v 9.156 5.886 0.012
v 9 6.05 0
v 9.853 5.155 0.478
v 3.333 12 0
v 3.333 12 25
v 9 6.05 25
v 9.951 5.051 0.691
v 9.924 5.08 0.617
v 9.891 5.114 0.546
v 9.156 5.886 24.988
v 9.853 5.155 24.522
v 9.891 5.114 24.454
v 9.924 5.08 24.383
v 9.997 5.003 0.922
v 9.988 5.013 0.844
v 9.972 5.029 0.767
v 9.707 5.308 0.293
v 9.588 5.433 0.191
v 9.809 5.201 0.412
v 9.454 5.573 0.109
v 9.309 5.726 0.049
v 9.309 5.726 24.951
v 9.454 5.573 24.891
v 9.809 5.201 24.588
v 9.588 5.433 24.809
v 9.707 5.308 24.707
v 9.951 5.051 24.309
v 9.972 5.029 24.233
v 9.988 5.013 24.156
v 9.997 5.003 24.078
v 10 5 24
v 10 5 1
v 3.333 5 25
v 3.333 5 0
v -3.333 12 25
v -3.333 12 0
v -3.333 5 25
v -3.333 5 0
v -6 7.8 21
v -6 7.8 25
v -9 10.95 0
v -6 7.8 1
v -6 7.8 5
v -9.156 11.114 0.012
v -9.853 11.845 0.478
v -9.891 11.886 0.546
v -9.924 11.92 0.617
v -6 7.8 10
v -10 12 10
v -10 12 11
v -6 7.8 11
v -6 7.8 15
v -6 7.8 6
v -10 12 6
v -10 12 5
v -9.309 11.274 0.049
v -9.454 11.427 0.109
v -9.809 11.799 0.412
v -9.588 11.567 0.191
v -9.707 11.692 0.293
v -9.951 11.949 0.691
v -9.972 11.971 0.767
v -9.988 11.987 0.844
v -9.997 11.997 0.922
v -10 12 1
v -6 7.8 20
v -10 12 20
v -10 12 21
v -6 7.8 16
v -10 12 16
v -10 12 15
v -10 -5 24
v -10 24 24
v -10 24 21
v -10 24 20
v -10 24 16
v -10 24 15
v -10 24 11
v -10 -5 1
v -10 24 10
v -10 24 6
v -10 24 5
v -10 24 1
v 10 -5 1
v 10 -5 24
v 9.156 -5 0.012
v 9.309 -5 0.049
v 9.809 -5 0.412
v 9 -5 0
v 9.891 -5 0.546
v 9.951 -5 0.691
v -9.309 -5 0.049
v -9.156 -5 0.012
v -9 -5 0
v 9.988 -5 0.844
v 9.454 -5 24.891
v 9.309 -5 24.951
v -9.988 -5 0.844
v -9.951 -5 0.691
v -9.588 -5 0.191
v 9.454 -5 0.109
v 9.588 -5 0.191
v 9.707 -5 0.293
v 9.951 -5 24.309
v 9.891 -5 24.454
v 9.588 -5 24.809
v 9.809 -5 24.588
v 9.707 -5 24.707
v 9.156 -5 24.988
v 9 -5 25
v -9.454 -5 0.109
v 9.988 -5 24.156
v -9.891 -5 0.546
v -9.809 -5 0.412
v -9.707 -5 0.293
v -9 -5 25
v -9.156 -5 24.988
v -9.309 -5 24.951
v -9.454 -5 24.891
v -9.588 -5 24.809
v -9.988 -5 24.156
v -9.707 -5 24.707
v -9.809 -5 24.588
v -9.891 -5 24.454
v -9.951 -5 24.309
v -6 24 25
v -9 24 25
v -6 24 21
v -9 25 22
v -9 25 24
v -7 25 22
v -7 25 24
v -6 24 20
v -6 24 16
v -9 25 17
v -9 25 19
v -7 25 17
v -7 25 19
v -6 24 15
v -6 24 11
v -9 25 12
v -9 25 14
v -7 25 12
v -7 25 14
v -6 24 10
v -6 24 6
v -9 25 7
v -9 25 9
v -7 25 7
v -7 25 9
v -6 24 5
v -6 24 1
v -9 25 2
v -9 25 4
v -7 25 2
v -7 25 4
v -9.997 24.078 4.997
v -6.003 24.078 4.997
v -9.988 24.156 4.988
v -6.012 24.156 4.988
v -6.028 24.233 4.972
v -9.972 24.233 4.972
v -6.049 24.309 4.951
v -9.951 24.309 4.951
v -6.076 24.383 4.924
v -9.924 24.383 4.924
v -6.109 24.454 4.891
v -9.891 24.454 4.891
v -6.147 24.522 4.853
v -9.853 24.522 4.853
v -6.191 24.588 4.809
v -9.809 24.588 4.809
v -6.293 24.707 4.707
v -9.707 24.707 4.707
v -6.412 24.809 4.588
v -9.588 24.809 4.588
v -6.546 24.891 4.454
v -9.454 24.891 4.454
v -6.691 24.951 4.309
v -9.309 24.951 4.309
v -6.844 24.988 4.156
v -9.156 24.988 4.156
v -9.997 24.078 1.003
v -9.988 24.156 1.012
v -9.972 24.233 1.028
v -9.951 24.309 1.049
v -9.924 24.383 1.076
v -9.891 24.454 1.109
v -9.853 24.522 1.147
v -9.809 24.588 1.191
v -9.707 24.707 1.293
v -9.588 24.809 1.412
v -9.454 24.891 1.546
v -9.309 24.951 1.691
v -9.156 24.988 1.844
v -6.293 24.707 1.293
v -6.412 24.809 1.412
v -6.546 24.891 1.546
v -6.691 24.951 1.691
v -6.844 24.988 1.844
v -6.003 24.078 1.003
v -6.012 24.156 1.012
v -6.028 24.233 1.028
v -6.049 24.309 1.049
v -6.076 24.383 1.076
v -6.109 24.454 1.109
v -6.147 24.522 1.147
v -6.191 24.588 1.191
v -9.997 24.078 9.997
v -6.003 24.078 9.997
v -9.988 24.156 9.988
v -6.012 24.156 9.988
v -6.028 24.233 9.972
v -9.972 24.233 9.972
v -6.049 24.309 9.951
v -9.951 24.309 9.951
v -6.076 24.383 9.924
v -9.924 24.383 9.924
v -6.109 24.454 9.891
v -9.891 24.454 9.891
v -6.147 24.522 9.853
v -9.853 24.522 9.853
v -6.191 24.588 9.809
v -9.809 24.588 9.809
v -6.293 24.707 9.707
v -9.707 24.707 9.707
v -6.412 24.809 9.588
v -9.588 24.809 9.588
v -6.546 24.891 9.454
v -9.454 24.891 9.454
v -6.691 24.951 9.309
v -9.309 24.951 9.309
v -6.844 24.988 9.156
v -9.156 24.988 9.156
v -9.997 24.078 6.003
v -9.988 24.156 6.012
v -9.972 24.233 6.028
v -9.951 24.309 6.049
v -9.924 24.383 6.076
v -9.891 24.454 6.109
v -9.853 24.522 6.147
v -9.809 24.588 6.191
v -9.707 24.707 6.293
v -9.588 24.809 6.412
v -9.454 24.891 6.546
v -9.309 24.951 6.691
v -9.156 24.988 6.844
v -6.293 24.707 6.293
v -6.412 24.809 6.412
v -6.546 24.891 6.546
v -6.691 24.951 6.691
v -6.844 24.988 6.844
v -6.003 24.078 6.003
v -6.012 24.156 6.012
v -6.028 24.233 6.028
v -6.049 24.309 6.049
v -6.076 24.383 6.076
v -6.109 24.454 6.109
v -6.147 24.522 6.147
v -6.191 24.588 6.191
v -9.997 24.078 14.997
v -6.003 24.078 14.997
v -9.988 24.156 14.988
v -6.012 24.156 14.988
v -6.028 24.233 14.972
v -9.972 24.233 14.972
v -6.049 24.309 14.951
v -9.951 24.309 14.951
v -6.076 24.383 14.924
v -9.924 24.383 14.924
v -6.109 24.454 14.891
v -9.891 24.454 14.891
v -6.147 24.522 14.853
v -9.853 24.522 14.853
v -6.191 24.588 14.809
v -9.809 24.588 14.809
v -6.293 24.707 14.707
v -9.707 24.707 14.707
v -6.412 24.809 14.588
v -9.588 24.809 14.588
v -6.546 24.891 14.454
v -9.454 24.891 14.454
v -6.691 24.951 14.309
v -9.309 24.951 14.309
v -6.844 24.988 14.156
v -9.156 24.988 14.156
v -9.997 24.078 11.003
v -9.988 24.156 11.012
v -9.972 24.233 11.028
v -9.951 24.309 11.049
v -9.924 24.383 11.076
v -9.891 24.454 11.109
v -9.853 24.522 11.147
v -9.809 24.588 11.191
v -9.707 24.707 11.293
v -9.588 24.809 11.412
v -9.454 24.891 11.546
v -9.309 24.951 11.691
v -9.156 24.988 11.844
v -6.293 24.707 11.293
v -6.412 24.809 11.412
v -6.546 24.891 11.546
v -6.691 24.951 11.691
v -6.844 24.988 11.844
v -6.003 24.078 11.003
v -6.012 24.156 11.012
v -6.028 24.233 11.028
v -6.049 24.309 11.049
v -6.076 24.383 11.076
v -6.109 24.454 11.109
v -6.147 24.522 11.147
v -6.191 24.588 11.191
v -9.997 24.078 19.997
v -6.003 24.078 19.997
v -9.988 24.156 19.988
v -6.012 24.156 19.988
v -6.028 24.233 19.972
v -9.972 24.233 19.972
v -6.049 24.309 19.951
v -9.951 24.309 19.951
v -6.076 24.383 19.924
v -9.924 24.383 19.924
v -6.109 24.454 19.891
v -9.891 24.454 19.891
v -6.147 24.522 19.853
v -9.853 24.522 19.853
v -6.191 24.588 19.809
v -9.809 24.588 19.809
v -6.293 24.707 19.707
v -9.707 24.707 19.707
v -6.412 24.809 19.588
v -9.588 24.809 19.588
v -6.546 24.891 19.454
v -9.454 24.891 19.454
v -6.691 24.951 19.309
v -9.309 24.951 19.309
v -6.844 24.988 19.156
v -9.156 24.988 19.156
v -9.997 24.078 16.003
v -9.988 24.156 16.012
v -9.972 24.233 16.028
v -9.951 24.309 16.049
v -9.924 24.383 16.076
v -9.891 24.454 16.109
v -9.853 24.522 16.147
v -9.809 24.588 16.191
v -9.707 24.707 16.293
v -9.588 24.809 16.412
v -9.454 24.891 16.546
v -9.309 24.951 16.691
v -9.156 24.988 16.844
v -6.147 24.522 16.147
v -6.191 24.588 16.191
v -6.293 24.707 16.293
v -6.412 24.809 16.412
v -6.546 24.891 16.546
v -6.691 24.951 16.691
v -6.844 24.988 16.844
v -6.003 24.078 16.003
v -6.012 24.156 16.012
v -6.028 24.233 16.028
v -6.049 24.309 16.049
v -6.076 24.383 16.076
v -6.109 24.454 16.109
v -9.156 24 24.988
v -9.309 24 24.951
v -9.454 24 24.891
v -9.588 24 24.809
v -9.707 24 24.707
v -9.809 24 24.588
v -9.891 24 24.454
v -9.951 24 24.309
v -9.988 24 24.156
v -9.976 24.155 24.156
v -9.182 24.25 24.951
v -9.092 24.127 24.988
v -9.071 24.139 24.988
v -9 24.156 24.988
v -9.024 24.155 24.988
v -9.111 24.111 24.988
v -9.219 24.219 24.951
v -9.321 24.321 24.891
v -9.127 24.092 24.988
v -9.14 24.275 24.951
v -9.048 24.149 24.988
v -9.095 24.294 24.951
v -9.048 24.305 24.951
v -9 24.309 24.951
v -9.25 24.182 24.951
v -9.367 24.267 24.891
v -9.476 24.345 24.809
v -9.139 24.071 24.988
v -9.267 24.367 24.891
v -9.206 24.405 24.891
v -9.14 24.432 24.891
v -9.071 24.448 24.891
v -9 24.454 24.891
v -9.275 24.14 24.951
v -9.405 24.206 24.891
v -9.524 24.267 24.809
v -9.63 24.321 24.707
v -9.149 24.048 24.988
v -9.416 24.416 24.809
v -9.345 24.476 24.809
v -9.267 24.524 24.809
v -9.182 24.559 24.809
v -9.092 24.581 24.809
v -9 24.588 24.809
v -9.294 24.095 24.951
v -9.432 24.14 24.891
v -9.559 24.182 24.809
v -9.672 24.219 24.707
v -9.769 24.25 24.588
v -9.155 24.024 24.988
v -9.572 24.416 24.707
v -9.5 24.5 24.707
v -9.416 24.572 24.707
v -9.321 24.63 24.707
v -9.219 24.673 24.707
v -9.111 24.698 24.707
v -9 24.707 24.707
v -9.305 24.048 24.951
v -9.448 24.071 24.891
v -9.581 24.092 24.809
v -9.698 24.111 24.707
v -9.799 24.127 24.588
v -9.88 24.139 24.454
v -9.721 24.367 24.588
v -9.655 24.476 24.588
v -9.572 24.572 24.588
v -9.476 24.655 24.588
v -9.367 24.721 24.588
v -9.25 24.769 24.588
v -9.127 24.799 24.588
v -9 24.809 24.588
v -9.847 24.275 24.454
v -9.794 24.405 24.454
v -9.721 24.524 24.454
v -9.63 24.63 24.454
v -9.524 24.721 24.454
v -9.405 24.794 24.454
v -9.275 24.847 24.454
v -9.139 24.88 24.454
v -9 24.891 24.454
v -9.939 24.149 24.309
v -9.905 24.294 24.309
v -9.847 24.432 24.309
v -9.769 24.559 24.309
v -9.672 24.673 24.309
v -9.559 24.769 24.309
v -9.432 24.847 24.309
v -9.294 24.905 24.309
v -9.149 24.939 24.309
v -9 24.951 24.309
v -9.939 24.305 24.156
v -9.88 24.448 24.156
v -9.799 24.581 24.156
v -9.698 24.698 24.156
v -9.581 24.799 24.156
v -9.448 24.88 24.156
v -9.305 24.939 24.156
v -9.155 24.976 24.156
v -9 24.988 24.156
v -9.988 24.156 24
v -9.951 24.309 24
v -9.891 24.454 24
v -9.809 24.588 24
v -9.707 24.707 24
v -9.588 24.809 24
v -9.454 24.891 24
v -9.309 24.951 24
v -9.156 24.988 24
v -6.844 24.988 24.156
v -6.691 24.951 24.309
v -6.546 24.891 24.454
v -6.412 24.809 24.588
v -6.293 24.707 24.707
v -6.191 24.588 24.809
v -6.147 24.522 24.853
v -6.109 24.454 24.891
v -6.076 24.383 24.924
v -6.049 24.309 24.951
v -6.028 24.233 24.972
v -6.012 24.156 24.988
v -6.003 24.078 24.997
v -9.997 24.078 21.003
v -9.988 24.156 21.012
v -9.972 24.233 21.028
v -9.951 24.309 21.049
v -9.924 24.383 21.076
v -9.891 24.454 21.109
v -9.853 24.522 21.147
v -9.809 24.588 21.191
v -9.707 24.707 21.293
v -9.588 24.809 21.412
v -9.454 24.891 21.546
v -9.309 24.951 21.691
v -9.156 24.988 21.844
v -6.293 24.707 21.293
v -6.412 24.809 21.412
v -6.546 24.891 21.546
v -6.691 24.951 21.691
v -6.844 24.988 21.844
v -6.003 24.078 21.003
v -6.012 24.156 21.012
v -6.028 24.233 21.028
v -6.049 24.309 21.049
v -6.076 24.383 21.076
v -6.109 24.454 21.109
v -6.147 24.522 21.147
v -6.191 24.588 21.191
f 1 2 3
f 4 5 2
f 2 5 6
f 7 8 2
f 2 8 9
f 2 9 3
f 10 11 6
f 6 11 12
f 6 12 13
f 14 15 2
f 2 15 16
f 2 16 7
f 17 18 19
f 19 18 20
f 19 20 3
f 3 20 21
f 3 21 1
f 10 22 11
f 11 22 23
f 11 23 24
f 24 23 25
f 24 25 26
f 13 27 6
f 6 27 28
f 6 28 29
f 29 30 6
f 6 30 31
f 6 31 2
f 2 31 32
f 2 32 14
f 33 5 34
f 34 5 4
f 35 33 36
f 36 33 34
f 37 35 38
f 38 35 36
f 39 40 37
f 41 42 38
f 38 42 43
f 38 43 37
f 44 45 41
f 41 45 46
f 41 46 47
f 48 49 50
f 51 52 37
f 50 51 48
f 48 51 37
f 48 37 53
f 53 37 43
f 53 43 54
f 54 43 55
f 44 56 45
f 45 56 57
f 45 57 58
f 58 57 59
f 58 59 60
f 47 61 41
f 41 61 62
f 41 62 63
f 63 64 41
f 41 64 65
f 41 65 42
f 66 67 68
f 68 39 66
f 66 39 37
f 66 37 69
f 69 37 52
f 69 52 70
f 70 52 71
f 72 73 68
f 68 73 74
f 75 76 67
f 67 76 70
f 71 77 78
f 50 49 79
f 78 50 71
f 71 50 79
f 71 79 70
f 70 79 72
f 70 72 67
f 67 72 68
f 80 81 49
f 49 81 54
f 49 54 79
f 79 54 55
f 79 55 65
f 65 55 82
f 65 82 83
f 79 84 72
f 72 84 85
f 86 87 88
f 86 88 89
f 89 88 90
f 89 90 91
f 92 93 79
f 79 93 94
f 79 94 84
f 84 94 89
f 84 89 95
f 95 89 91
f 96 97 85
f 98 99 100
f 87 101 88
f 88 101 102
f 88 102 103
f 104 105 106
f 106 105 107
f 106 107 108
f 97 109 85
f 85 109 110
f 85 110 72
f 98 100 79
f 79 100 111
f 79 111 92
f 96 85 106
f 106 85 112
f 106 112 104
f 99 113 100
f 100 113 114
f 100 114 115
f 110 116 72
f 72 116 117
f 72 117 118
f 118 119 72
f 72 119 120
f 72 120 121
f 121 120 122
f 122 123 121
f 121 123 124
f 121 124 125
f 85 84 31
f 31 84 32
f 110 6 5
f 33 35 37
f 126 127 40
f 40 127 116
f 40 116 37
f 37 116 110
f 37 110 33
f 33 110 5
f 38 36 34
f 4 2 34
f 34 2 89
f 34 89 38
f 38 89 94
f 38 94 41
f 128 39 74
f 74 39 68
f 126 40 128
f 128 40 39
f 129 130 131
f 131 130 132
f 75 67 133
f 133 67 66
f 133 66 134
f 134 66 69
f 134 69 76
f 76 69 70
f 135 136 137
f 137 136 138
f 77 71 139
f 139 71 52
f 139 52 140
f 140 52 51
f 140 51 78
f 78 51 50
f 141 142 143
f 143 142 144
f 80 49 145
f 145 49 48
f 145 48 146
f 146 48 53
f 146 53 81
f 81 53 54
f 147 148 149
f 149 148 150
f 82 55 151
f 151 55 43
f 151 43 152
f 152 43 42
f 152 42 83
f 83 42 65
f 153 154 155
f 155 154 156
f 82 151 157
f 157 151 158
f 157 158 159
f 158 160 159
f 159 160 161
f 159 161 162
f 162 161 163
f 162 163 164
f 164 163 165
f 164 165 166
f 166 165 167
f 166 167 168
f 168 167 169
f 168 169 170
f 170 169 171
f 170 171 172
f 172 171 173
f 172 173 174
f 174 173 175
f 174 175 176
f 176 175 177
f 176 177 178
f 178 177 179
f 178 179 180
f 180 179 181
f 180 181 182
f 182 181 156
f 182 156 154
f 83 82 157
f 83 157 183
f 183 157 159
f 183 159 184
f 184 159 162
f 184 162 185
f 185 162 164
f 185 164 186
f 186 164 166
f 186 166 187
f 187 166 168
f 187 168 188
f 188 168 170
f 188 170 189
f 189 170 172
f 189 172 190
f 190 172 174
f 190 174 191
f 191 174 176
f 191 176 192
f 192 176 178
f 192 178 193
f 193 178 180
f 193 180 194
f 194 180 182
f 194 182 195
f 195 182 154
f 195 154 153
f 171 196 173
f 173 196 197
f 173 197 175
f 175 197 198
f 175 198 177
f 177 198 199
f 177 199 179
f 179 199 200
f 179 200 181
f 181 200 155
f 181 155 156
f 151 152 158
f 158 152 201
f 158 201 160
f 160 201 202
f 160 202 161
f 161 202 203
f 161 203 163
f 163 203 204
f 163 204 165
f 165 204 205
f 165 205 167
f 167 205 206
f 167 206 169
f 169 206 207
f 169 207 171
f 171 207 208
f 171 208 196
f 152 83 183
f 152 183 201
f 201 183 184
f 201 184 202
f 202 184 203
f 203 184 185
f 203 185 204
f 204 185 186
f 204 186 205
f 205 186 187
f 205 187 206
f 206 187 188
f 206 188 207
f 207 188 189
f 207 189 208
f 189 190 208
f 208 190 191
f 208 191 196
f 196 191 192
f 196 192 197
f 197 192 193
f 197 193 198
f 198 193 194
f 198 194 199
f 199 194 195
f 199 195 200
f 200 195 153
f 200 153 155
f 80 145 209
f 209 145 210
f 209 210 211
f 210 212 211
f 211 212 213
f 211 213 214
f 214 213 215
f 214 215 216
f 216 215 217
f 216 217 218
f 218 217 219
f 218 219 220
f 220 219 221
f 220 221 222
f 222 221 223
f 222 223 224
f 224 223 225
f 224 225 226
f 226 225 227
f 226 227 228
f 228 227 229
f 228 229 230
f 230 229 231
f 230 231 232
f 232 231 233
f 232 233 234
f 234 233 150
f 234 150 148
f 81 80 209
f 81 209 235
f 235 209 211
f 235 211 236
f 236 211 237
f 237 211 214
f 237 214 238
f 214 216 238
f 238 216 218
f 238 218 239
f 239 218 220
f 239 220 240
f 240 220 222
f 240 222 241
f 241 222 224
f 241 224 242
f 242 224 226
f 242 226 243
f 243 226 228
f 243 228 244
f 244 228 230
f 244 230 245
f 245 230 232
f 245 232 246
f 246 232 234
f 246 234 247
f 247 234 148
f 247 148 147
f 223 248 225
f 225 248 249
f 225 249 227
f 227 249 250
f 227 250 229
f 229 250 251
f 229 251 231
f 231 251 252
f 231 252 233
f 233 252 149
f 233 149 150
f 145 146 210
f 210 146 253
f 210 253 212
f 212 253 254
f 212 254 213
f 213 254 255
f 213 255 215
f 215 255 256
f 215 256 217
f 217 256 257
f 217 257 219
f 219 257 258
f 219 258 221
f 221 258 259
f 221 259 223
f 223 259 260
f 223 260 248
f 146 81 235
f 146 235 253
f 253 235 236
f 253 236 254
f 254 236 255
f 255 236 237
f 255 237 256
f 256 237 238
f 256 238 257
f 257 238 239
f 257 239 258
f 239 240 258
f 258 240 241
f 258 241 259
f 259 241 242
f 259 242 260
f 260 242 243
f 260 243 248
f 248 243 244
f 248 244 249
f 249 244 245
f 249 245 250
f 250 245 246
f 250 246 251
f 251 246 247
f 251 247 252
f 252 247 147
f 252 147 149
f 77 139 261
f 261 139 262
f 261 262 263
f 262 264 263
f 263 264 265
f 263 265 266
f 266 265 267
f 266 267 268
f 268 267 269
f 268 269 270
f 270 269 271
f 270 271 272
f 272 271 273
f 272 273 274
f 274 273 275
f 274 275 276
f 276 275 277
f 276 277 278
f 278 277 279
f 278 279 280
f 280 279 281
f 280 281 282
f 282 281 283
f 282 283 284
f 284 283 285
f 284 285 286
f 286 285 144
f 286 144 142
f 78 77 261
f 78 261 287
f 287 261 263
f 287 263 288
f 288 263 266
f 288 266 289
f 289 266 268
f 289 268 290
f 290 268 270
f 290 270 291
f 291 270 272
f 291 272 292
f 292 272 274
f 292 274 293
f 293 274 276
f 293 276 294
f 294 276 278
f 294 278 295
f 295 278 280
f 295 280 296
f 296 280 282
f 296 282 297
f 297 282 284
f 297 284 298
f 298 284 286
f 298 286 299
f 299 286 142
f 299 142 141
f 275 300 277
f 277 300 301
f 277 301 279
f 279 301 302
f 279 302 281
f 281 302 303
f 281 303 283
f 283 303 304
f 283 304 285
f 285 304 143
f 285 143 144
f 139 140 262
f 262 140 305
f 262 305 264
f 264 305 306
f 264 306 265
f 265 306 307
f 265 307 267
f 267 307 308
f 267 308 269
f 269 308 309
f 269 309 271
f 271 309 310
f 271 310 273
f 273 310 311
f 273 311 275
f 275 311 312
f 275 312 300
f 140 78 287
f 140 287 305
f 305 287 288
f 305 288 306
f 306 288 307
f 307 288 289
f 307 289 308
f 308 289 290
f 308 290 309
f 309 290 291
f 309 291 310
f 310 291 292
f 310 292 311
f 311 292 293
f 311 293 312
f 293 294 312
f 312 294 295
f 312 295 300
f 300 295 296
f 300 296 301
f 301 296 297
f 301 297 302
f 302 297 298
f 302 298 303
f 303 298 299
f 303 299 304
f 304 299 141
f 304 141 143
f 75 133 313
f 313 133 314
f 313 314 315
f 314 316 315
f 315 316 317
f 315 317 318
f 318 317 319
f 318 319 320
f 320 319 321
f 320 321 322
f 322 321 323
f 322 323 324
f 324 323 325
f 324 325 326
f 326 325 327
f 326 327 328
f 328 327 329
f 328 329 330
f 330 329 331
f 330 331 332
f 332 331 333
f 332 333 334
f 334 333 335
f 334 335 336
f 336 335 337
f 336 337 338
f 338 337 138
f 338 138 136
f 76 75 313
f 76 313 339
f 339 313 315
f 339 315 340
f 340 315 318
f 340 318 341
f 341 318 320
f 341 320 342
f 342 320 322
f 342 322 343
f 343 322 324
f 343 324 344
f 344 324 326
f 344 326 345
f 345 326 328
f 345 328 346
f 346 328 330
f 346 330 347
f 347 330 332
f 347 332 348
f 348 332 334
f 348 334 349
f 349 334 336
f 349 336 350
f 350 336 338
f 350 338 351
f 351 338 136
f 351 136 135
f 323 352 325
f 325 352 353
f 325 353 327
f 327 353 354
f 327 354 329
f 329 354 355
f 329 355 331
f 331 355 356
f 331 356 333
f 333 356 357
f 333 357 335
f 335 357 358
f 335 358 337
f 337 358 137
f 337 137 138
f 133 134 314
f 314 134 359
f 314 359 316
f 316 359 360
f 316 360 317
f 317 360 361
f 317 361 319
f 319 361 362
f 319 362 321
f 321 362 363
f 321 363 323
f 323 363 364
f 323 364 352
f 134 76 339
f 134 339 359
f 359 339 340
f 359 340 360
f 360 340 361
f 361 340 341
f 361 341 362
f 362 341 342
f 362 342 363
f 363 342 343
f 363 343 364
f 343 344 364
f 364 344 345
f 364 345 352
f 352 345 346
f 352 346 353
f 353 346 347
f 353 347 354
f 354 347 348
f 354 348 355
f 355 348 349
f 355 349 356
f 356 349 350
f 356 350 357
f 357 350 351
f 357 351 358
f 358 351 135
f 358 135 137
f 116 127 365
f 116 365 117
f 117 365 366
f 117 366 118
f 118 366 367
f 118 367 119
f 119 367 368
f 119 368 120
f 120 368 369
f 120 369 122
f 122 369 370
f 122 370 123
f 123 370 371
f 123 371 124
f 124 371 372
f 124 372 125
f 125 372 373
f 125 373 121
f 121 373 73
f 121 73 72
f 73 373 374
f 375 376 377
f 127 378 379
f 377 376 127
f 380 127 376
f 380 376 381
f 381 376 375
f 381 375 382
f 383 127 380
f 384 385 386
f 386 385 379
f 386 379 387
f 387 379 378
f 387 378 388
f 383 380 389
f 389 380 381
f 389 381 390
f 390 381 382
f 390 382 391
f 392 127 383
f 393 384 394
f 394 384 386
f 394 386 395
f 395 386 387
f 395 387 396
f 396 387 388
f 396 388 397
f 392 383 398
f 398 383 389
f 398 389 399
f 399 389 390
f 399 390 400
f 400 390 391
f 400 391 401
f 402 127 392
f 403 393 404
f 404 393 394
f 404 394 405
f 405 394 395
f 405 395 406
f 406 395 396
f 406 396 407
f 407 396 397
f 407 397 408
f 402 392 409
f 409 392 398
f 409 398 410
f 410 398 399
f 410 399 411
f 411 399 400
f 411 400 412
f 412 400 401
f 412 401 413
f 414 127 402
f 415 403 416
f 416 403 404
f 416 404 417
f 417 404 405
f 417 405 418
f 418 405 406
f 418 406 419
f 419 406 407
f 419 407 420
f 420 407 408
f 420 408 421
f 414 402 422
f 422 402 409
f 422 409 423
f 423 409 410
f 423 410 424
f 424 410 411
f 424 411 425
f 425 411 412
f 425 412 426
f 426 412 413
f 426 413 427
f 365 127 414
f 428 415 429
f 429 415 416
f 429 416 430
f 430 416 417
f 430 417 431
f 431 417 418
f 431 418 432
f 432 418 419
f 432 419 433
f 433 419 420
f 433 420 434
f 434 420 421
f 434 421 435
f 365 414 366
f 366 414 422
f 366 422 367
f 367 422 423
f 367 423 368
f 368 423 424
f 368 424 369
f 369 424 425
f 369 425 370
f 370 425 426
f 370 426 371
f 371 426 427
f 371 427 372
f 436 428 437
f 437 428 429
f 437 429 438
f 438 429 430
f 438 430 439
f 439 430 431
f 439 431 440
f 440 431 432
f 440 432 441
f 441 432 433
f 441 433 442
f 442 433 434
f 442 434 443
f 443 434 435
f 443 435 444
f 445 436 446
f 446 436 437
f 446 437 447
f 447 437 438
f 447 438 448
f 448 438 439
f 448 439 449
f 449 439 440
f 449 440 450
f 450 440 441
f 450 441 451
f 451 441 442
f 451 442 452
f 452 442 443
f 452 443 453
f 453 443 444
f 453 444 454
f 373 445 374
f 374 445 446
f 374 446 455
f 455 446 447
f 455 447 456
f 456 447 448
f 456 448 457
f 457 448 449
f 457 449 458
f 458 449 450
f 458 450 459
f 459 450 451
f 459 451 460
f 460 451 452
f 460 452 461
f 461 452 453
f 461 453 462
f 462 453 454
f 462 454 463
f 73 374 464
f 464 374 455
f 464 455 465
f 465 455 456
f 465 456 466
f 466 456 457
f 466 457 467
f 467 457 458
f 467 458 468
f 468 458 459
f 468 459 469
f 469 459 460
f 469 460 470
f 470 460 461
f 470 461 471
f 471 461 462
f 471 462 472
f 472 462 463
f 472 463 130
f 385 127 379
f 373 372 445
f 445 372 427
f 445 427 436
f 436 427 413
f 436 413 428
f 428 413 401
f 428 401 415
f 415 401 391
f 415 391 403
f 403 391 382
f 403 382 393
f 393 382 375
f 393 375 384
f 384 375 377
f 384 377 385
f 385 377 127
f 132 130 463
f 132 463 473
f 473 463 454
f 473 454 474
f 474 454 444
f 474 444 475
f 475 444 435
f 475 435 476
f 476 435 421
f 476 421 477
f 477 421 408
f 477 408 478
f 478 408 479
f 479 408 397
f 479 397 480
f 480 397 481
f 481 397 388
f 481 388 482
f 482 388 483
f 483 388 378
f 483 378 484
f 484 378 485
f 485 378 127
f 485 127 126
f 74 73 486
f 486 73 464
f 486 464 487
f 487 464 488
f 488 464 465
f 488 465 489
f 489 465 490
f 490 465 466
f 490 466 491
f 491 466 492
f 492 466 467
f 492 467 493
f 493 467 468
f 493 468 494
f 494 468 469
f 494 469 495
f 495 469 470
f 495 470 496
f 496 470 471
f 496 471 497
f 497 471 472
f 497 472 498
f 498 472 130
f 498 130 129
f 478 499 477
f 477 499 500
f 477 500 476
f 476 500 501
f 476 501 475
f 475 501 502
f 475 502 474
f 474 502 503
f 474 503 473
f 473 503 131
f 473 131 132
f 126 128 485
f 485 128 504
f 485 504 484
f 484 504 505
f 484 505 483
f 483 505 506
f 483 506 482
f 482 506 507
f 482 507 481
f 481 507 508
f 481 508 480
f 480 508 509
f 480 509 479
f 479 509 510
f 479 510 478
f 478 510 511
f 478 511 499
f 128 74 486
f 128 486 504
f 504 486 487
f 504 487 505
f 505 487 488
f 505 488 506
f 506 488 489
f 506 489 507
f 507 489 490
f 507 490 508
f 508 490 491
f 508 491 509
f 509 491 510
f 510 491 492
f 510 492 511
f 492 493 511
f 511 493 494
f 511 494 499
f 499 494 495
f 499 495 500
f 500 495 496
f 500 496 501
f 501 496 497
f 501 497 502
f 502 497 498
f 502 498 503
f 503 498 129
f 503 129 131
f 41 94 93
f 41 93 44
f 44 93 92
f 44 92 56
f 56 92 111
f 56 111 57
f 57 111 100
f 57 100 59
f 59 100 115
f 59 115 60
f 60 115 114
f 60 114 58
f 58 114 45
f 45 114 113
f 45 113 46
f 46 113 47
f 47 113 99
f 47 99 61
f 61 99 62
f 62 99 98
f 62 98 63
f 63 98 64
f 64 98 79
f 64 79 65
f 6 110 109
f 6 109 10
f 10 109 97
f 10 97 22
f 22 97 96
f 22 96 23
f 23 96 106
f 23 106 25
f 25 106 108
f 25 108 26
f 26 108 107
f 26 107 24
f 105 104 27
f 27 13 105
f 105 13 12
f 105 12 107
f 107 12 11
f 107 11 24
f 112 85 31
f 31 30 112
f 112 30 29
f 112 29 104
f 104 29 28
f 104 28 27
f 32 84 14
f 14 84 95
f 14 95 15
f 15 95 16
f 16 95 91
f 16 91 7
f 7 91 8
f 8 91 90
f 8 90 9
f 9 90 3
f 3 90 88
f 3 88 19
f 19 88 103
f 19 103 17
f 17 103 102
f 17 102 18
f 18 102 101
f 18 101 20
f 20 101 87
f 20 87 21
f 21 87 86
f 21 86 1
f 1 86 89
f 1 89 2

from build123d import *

# Parameters (mm, degrees)
EXTRUDE_1_DEPTH        = 25
SKETCH_2_W             = 4
SKETCH_2_H             = 4
EXTRUDE_2_DEPTH        = 30
PATTERN_LINEAR_1_COUNT = 5
PATTERN_LINEAR_1_PITCH = 5
FILLET_1_R             = 1


with BuildPart() as part:
    # 草图1 → 凸台-拉伸1 (new body)
    with BuildSketch(Plane.XY):
        Polygon((-10, 5), (-10, 12), (-3.333333333, 5), (-3.333333333, 12), (3.333333333, 5), (3.333333333, 12), (10, 5), (10, -5), (-10, -5), align=None)
    extrude(amount=EXTRUDE_1_DEPTH)

    # 草图2 → 凸台-拉伸2 (add)
    with BuildSketch(Plane.XZ.offset(5)):
        with Locations((-8, 23)):
            Rectangle(SKETCH_2_W, SKETCH_2_H)
    extrude_2 = extrude(amount=-EXTRUDE_2_DEPTH)

    # 阵列(线性)1: 凸台-拉伸2 ×5
    with Locations(*[(0, 0, -i * PATTERN_LINEAR_1_PITCH) for i in range(1, PATTERN_LINEAR_1_COUNT)]):
        add(extrude_2)

    # 圆角1
    fillet_1_edges = [part.edges().sort_by_distance(p)[0] for p in [
        (-10, 25, 3),
        (-8, 25, 5),
        (-6, 25, 3),
        (-8, 25, 1),
        (-10, 10, 25),
        (10, 0, 25),
        (-8, 25, 25),
        (-8, 25, 21),
        (-10, 25, 23),
        (-6, 25, 23),
        (-10, 25, 18),
        (-8, 25, 20),
        (-6, 25, 18),
        (-8, 25, 16),
        (-10, 25, 13),
        (-8, 25, 15),
        (-6, 25, 13),
        (-8, 25, 11),
        (10, 0, 0),
        (-10, 25, 8),
        (-8, 25, 10),
        (-6, 25, 8),
        (-8, 25, 6),
        (-10, 3.5, 0),
    ]]
    fillet(fillet_1_edges, radius=FILLET_1_R)


solid = part.part
